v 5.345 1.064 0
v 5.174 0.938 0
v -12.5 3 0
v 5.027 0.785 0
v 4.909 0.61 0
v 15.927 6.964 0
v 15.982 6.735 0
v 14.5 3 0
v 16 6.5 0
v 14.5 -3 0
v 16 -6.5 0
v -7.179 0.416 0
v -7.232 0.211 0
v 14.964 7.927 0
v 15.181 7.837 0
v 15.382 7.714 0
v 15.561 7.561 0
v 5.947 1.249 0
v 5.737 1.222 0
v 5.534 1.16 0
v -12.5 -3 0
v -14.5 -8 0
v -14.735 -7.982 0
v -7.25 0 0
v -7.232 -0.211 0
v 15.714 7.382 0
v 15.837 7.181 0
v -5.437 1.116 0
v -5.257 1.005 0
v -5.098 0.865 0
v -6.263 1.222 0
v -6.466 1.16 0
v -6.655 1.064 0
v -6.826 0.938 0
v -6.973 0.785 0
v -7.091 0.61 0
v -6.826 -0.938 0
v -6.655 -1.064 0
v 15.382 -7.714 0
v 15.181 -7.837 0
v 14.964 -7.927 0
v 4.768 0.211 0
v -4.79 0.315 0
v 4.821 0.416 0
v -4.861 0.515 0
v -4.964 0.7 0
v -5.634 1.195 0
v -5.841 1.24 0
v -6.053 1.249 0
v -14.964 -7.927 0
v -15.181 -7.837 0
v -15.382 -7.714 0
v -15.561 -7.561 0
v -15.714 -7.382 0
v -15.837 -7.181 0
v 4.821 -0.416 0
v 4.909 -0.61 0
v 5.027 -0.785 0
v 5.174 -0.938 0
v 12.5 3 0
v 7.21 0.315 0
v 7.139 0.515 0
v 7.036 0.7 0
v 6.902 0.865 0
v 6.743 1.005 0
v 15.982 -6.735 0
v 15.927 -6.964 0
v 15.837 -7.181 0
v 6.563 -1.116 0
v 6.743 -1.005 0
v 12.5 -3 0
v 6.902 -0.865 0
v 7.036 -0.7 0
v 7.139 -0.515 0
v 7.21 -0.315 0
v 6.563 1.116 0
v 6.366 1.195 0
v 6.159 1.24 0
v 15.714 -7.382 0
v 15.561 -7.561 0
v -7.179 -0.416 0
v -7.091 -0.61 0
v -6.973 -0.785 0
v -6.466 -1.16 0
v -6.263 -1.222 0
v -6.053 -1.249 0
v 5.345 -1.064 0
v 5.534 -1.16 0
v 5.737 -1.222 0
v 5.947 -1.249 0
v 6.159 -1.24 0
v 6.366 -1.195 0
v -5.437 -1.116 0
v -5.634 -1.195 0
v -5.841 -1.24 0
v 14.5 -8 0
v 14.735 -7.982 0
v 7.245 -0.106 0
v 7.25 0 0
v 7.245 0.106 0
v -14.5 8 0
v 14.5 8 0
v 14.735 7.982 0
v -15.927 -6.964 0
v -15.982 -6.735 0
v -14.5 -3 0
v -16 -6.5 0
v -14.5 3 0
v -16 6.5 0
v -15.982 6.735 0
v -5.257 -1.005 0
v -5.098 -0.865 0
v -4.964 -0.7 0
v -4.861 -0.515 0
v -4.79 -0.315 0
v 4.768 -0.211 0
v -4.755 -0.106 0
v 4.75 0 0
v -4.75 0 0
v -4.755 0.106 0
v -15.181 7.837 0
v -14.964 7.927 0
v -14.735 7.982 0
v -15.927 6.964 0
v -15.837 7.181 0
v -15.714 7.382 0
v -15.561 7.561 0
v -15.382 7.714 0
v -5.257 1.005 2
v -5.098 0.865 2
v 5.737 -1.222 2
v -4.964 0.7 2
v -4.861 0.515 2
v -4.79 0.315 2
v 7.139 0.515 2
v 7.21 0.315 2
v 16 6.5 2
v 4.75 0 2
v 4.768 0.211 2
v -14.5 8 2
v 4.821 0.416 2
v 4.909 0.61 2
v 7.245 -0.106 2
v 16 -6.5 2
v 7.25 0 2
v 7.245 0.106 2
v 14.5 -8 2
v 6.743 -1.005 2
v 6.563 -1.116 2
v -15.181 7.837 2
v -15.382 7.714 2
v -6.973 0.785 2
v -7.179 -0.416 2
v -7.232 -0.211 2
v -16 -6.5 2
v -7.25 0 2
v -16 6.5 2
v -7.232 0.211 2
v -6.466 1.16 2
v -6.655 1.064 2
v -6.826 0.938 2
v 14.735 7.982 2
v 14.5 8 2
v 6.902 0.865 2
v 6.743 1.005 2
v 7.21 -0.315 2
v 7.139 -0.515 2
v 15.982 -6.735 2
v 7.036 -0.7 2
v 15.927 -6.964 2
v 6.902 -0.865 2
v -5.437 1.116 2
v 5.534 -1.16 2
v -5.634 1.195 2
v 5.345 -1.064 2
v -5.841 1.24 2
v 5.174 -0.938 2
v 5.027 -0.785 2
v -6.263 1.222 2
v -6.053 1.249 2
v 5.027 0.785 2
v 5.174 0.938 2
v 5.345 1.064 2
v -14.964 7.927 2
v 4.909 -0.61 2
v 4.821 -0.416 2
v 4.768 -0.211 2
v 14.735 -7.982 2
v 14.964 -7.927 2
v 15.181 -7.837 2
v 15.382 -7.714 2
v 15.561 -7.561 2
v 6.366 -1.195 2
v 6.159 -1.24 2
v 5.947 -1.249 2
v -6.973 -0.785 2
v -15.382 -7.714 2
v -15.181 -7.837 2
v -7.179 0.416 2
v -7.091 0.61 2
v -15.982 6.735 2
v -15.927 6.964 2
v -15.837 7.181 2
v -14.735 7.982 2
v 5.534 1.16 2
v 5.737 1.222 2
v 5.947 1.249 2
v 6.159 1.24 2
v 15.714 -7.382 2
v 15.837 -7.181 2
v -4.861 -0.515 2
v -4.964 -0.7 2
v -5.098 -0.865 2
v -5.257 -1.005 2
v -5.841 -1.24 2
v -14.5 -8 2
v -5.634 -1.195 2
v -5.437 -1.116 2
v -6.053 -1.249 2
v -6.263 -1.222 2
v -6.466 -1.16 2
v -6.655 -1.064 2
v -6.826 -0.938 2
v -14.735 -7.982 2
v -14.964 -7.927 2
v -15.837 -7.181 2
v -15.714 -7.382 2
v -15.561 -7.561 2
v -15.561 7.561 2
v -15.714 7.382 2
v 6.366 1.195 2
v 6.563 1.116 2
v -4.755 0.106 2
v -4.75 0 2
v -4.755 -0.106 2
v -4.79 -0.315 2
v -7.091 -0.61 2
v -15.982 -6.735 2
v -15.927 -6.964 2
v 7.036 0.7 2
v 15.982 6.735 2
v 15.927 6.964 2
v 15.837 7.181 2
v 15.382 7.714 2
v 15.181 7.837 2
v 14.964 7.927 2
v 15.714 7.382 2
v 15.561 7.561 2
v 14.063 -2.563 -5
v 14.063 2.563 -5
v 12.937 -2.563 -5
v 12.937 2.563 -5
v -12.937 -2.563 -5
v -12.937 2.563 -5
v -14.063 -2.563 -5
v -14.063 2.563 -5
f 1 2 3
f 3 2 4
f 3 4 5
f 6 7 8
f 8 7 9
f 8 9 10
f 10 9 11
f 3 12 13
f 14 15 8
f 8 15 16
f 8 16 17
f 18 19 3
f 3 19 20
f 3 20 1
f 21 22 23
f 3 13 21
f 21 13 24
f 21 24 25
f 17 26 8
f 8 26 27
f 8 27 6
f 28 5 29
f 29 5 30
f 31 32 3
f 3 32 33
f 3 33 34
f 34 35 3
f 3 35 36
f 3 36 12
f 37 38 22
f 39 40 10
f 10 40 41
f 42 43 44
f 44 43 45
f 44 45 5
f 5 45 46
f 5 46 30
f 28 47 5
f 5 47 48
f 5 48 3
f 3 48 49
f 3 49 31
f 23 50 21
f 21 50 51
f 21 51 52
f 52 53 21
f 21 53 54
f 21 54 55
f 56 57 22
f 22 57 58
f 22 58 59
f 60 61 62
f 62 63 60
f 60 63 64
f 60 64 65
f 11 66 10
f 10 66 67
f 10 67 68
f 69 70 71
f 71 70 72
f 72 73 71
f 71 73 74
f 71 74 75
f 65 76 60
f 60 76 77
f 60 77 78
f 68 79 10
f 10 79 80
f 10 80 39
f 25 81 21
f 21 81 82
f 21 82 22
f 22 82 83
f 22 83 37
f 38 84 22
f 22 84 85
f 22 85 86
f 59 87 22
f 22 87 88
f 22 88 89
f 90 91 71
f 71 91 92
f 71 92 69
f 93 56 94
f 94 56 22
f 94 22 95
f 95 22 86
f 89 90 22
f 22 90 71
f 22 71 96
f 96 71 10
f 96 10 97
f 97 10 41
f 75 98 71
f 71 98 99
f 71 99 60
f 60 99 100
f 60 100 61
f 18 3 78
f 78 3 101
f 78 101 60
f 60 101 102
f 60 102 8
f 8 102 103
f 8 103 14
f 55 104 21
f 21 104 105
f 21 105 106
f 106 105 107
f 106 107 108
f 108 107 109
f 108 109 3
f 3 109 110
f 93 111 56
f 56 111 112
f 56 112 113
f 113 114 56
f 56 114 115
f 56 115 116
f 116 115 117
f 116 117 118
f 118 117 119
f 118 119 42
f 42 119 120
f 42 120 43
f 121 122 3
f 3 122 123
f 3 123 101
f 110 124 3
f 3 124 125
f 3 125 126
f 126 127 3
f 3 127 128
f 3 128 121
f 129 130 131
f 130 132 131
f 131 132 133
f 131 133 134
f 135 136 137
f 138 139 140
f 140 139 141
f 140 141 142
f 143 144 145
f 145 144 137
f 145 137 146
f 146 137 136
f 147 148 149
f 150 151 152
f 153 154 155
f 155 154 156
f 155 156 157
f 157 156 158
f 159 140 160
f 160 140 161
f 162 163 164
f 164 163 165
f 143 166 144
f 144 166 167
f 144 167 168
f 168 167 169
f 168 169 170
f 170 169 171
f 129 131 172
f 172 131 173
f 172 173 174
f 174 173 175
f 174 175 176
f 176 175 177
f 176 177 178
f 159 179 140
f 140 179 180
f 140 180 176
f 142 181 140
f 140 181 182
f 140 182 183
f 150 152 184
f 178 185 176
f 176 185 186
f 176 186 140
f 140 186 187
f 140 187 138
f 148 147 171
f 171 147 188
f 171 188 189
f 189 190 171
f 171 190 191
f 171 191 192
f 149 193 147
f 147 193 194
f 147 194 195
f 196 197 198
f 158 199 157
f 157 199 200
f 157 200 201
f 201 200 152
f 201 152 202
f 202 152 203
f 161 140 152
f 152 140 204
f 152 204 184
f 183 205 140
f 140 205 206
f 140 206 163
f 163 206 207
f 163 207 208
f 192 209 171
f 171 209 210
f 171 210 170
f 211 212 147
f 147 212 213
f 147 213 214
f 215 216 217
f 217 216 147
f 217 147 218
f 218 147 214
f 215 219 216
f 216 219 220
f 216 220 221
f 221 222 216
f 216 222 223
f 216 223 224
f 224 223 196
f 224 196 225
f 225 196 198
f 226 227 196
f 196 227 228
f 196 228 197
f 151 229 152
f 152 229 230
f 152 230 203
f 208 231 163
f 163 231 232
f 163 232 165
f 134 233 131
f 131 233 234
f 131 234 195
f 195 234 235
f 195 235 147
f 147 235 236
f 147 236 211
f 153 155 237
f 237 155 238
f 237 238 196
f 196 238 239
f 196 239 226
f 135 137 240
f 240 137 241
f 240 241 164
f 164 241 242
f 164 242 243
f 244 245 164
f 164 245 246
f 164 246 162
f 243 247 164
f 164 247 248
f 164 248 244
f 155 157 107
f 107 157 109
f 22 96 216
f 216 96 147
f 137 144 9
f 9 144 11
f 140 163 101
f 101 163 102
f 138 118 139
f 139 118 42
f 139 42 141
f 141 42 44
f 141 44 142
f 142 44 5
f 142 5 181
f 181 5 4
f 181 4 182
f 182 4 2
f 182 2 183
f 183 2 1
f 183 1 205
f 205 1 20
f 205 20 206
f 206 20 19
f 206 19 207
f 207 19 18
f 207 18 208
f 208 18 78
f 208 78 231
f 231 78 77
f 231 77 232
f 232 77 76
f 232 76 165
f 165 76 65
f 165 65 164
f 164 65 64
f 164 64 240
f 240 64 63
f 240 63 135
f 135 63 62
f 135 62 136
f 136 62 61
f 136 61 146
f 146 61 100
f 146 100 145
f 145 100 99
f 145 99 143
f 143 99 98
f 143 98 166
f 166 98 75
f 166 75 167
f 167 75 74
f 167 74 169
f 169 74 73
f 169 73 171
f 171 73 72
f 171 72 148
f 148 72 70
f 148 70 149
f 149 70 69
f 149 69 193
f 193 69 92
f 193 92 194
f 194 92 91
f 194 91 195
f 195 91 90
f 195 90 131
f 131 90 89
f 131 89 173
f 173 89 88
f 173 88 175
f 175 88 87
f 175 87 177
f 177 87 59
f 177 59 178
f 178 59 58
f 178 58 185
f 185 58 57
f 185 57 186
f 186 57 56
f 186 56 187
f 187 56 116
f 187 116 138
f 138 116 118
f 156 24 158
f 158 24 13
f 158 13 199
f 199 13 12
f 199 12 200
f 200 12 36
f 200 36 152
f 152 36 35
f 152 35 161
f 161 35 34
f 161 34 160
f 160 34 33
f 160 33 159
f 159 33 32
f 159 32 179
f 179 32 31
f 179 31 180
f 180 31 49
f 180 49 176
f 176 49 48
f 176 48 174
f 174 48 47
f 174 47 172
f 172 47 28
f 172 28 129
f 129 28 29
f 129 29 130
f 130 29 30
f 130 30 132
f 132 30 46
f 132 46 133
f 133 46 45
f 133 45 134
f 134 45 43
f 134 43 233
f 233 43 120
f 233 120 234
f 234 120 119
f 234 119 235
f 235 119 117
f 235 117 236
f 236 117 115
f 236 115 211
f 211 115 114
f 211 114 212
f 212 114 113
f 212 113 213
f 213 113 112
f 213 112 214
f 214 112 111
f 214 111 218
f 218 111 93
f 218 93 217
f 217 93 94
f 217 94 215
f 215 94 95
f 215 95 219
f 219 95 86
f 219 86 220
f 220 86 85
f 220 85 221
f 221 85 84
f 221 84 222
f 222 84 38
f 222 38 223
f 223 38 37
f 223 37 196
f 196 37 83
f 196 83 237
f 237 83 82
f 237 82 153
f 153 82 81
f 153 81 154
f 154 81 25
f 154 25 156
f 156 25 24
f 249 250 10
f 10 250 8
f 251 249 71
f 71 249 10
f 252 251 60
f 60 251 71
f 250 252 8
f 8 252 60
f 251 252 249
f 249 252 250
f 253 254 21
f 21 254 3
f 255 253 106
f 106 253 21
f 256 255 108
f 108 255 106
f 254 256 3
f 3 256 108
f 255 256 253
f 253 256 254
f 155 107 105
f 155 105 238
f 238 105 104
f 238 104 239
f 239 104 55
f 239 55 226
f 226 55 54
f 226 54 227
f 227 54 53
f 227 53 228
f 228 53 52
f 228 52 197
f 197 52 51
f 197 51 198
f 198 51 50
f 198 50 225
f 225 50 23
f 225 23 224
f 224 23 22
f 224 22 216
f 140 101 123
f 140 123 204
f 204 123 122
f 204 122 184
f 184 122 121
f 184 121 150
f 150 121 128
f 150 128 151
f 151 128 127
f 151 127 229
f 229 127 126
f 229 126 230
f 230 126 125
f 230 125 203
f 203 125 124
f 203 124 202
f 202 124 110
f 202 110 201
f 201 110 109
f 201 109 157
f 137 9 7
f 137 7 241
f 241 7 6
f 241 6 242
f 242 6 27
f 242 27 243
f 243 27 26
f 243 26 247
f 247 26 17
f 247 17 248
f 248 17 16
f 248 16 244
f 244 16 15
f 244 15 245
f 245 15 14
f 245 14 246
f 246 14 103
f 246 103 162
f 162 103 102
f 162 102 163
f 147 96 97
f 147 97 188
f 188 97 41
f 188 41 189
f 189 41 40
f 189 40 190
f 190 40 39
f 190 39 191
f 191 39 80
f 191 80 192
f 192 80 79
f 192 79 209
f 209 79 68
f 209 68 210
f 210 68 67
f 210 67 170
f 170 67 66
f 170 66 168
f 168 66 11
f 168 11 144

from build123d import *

# Parameters (mm, degrees)
SKETCH1_W           = 32
SKETCH1_H           = 16
SKETCH1_R           = 1.25
BOSS_EXTRUDE1_DEPTH = 2
SKETCH2_W           = 2
SKETCH2_H           = 6
BOSS_EXTRUDE2_DEPTH = 5
BOSS_EXTRUDE2_TAPER = 5
FILLET1_R           = 1.5


with BuildPart() as part:
    # Sketch1 → Boss-Extrude1 (new body)
    with BuildSketch(Plane.XY):
        Rectangle(SKETCH1_W, SKETCH1_H)
        with Locations((6, 0)):
            Circle(SKETCH1_R, mode=Mode.SUBTRACT)
        with Locations((-6, 0)):
            Circle(SKETCH1_R, mode=Mode.SUBTRACT)
    extrude(amount=BOSS_EXTRUDE1_DEPTH)

    # Sketch2 → Boss-Extrude2 (add)
    with BuildSketch(Plane(origin=(0, 0, 0), x_dir=(-1, 0, 0), z_dir=(0, 0, -1))):
        with Locations((-13.5, 0)):
            Rectangle(SKETCH2_W, SKETCH2_H)
        with Locations((13.5, 0)):
            Rectangle(SKETCH2_W, SKETCH2_H)
    extrude(amount=BOSS_EXTRUDE2_DEPTH, taper=BOSS_EXTRUDE2_TAPER)

    # Fillet1
    fillet1_edges = [part.edges().sort_by_distance(p)[0] for p in [
        (-16, 8, 1),
        (16, 8, 1),
        (16, -8, 1),
        (-16, -8, 1),
    ]]
    fillet(fillet1_edges, radius=FILLET1_R)


solid = part.part
